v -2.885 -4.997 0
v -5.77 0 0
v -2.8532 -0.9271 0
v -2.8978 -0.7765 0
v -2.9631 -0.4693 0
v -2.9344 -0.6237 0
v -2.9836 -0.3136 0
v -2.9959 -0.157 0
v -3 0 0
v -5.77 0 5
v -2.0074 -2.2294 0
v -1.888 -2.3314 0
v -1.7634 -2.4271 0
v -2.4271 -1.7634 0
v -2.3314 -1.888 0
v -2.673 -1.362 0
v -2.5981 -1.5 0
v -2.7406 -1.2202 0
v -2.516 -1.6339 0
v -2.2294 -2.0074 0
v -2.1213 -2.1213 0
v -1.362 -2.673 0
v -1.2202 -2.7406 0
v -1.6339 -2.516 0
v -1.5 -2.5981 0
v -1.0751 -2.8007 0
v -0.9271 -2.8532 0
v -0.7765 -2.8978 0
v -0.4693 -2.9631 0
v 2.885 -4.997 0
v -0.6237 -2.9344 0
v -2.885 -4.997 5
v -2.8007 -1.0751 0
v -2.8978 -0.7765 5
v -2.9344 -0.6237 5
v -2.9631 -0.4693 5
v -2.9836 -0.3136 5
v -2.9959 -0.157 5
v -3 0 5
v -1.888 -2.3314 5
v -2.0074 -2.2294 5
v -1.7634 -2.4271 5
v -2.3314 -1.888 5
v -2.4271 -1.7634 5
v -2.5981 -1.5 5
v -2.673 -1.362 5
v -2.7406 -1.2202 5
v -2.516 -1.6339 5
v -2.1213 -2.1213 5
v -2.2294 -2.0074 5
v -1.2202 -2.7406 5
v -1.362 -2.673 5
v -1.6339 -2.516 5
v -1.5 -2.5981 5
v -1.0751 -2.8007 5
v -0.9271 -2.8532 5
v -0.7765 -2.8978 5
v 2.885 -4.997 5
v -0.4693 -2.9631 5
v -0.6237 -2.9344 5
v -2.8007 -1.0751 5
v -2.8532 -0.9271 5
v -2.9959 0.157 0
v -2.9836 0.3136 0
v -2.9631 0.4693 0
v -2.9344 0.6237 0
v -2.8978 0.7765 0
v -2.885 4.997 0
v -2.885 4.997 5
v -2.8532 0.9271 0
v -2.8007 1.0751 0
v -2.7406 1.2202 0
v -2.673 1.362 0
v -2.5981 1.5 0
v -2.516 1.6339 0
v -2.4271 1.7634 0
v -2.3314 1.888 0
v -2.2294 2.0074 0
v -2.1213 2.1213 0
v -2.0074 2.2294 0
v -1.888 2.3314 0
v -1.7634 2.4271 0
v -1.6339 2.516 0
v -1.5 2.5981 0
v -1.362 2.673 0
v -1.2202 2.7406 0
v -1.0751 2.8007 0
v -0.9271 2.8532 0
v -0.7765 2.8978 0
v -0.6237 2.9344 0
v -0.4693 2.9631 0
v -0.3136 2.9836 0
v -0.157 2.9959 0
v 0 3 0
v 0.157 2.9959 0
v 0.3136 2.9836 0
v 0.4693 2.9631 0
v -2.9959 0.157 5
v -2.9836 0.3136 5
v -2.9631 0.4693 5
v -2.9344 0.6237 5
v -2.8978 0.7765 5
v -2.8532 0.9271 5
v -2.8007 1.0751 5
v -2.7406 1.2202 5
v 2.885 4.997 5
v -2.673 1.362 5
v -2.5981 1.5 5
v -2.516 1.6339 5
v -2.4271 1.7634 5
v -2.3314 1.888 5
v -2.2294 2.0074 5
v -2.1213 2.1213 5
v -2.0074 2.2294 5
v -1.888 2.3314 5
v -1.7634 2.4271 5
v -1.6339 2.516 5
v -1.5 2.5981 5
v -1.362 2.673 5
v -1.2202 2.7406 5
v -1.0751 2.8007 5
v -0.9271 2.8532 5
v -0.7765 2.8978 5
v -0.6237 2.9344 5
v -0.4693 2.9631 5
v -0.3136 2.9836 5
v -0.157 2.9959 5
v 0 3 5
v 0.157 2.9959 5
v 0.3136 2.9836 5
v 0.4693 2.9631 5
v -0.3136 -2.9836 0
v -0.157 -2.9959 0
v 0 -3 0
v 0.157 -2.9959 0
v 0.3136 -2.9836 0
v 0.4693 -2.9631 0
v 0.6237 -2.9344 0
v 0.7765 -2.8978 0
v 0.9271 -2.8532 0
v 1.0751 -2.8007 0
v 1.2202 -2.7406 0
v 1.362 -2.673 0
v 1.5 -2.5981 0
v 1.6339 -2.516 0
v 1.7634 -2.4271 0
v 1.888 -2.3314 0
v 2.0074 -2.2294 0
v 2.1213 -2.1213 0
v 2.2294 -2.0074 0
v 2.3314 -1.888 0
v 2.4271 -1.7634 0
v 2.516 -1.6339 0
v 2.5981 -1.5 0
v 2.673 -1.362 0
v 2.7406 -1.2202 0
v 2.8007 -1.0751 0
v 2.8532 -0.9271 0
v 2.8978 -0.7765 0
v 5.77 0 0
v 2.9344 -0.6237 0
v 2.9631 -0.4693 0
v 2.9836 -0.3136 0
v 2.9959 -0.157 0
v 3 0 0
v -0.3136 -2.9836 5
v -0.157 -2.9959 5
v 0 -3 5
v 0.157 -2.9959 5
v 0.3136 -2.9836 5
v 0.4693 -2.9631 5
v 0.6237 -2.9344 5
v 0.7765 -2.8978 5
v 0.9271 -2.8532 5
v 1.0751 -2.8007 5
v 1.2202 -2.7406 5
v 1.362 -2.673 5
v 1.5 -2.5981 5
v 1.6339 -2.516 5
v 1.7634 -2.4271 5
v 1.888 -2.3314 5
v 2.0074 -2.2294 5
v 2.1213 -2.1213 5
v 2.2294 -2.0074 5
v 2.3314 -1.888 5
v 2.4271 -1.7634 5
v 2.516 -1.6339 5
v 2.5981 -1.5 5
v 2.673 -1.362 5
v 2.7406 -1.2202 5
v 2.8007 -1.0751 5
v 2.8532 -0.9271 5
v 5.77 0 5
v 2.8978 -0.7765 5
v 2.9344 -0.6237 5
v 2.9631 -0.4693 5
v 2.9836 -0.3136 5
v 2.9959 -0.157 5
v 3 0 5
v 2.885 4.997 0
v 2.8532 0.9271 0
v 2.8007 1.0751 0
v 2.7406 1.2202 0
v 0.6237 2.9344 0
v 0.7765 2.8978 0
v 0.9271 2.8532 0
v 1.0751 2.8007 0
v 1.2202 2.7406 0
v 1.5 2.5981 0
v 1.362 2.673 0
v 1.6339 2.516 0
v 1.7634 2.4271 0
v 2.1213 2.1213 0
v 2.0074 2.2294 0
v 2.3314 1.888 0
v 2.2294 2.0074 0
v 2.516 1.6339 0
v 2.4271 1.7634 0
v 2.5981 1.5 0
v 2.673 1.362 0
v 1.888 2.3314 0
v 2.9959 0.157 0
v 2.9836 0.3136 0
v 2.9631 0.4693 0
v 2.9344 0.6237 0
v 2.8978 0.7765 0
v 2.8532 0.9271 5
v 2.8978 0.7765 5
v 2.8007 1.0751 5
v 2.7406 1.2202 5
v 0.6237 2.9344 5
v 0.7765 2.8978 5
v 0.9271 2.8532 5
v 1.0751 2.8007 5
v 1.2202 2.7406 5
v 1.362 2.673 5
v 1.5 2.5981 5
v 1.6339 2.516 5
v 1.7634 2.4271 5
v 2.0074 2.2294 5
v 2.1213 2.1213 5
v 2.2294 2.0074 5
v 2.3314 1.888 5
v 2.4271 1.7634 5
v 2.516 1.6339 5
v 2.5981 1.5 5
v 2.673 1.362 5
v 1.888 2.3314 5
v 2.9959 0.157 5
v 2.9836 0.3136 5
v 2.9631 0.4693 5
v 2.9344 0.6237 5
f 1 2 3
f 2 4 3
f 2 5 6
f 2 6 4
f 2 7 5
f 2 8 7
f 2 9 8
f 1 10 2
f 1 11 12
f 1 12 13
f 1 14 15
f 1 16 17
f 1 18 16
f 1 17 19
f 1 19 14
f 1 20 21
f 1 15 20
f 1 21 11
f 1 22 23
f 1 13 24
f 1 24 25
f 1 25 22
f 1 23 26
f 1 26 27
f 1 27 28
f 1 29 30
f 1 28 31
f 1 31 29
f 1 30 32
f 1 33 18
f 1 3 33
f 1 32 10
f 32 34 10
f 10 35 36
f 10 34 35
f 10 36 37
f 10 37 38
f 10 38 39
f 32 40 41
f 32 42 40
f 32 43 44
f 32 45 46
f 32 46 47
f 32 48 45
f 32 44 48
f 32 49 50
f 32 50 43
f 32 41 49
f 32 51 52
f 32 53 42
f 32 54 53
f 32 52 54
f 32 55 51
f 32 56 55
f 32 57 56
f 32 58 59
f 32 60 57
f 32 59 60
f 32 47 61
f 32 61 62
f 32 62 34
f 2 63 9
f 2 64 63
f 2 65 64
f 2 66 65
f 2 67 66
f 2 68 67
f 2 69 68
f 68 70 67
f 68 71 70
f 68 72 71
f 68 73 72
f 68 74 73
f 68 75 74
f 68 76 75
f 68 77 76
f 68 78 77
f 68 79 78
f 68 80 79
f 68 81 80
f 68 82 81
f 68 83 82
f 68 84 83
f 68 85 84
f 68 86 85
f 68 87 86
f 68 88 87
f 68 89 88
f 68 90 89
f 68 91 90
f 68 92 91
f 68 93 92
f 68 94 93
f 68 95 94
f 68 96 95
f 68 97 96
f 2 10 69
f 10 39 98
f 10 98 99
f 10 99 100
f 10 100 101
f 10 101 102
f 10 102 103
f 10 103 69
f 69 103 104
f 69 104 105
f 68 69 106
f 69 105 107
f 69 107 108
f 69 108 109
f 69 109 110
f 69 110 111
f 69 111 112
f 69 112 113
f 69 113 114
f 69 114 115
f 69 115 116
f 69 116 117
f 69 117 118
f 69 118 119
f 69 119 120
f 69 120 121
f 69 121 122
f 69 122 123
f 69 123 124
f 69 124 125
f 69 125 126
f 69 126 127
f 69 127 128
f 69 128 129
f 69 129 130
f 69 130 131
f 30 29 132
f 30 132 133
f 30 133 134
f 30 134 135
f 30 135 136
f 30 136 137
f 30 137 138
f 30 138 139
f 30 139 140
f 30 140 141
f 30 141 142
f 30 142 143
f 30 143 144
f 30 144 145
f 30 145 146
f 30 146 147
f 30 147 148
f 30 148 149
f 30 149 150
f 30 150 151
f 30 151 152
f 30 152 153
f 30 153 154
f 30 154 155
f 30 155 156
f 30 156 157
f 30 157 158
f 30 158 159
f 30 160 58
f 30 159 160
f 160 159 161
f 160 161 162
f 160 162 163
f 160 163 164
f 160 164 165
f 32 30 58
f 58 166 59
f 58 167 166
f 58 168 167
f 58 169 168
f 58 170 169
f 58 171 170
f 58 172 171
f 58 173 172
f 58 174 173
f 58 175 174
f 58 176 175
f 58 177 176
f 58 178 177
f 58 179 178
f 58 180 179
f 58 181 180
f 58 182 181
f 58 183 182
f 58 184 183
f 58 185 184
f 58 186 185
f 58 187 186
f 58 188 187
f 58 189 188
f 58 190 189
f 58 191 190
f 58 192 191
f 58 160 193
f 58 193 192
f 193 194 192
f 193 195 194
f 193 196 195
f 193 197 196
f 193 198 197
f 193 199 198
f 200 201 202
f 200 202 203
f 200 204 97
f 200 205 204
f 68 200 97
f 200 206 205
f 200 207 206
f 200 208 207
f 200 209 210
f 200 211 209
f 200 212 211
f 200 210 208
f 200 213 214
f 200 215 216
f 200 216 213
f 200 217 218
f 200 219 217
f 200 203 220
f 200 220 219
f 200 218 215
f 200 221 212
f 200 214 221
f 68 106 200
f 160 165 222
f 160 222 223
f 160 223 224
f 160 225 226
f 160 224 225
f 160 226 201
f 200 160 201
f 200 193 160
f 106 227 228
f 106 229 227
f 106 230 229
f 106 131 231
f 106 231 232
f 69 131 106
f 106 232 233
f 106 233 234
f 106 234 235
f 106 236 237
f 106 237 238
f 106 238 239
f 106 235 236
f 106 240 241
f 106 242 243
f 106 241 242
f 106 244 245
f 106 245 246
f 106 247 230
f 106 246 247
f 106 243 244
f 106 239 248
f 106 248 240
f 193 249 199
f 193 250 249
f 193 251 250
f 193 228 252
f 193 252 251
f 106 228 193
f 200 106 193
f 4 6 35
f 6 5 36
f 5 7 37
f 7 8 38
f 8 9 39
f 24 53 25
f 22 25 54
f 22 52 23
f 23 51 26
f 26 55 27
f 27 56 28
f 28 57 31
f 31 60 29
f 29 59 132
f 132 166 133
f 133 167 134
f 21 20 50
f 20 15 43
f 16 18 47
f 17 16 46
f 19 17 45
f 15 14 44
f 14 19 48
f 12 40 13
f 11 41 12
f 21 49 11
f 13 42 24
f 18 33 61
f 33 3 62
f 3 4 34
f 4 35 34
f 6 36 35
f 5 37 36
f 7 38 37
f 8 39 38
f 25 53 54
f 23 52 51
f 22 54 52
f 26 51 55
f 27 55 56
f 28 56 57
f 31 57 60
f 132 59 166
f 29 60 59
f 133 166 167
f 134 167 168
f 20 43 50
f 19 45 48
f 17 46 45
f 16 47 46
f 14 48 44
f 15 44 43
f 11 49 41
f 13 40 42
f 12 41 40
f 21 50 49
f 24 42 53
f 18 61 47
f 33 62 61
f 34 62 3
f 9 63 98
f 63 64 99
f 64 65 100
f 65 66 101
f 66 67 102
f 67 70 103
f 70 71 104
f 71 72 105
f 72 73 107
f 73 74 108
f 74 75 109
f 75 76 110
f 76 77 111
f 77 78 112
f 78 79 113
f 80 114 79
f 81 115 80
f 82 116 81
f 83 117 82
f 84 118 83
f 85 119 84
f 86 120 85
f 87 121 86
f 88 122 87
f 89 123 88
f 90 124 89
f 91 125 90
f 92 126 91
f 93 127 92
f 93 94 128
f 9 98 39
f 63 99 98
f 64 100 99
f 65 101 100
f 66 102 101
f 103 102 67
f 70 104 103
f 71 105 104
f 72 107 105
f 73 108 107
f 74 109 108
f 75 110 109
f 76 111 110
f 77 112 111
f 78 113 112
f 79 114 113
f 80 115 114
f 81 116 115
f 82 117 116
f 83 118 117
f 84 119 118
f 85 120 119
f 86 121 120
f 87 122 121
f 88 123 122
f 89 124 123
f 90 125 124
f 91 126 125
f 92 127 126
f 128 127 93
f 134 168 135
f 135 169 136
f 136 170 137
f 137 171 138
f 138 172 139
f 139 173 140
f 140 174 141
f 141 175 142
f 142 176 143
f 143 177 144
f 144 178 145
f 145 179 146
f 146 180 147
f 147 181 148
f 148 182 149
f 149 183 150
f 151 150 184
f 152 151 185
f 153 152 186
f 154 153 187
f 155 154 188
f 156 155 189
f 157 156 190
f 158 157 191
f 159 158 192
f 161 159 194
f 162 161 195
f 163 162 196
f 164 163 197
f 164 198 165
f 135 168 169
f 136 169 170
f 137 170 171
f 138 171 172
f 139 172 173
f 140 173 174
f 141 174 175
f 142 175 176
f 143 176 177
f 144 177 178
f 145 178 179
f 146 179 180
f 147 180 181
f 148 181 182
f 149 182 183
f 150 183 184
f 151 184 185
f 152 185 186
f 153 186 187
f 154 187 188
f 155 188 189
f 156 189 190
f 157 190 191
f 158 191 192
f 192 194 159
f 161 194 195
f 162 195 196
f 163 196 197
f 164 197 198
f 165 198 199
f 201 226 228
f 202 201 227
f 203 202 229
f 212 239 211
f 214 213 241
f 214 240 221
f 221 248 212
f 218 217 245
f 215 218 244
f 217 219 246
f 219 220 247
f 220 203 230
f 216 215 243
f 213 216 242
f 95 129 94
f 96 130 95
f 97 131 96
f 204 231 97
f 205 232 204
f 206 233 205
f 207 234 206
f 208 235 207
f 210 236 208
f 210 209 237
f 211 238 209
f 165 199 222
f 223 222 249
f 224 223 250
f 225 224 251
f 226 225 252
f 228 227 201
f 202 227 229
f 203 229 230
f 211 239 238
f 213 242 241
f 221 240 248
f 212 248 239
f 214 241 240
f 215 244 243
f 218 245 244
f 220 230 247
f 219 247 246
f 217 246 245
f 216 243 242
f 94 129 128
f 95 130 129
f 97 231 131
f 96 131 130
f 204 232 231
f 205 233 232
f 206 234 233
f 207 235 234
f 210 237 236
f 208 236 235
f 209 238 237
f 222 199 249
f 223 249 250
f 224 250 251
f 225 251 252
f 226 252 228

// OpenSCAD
// file: C:/gh/oomlout_oobb_part_motor_gearbox_wave_drive_version_5/parts/oobb_part_motor_gearbox_wave_drive_version_5_12_to_1_reduction/compact_helpers.scad
// Reusable native geometry helpers.
function polar(r,a)=[r*cos(a),r*sin(a)];
function rotate_point(p,a)=[p[0]*cos(a)-p[1]*sin(a),p[0]*sin(a)+p[1]*cos(a)];
function profile_point(t)=let(
    s=sqrt(pow(pitch_radius,2)-pow(eccentricity*sin(cavity_count*t),2)),
    r=eccentricity*cos(cavity_count*t)+s,
    xi=atan2(eccentricity*cavity_count*sin(cavity_count*t),s),
    rr=roller_radius+profile_clearance)
    [r*cos(t)+rr*cos(t+xi),r*sin(t)+rr*sin(t+xi)];
function profile_points(upper=false)=[for(i=[0:cavity_count*profile_samples_per_cavity-1])
    rotate_point(profile_point(360*i/(cavity_count*profile_samples_per_cavity)),0)];
function roller_position(i,a,upper=false)=let(
    t=-a/roller_count+360*i/roller_count,
    rel=t-a-(upper?180:0),
    r=eccentricity*cos(rel)+sqrt(pow(pitch_radius,2)-pow(eccentricity*sin(rel),2))) polar(r,t);
module tube(ro,ri,h) { difference() { cylinder(r=ro,h=h); translate([0,0,-eps]) cylinder(r=ri,h=h+2*eps); } }
module screw_hole(size,h) { scale([1,1,h]) { if(size=="m2") oobb_hole_m2(); if(size=="m3") oobb_hole_m3(); if(size=="m6") oobb_hole_m6(); } }
module socket_recess(size,depth) {
    // OOBB socket head starts at the under-head plane and extends outward.
    scale([1,1,depth/(size=="m3"?3.2:2.2)]) {
        if(size=="m3") oobb_socket_m3(); else oobb_socket_m2();
    }
}
module at_mounts(points) { for(p=points) translate([p[0],p[1],0]) children(); }
module shaft_cut(h,fit=shaft_fit_clearance) {
    linear_extrude(h) intersection() {
        circle(r=input_shaft_diameter/2+fit);
        translate([-10,-10]) square([10+input_shaft_diameter/2-input_shaft_flat_depth+fit,20]);
    }
}
module rounded_rectangle_plate(size=[119,119,3],radius=1.5) {
    hull() for(x=[-1,1],y=[-1,1]) translate([x*(size[0]/2-radius),y*(size[1]/2-radius),0]) cylinder(r=radius,h=size[2]);
}
module grid_cuts(h) {
    // Actual OOBB grid centres: six units are centred on half-pitch offsets.
    for(i=[0:base_width-1],j=[0:base_height-1])
        let(x=(i-(base_width-1)/2)*oobb_grid_pitch,y=(j-(base_height-1)/2)*oobb_grid_pitch)
        if(sqrt(x*x+y*y)>housing_radius+3.5)
            translate([x,y,-eps]) screw_hole("m6",h+2*eps);
}
module wave_generator() {
    render(convexity=20) difference() {
        tube(wave_radius,12.6,wave_height);
        translate([0,0,wave_seat_z]) cylinder(r=13.5+bearing_seat_clearance,h=wave_height);
        translate([0,0,wave_height-wave_cap_depth]) cylinder(r=22.15,h=wave_cap_depth+eps);
        at_mounts(wave_mounts) {
            translate([0,0,-eps]) screw_hole("m3",wave_height+2*eps);
            translate([0,0,wave_nut_z]) scale([1,1,(wave_height-wave_cap_depth-wave_nut_z+eps)/2.7]) oobb_nut_m3();
        }
    }
}
module wave_cap() {
    render(convexity=20) difference() {
        tube(22,12.6,wave_cap_depth);
        at_mounts(wave_mounts) {
            translate([0,0,-eps]) screw_hole("m3",wave_cap_depth+2*eps);
            translate([0,0,wave_cap_depth-wave_head_recess]) socket_recess("m3",wave_head_recess+eps);
        }
    }
}
// file: C:/gh/oomlout_oobb_part_motor_gearbox_wave_drive_version_5/parts/oobb_part_motor_gearbox_wave_drive_version_5_12_to_1_reduction/oobb_hardware.scad
module oobb_rounded_rectangle_edges(size, radius, radius_top, radius_bottom) {
      rt=radius_top; rb=radius_bottom; depth=size[2]; n=16;
      lower=rb==0 ? [[radius,0]] :
        [for(i=[0:n]) let(a=-90+90*i/n) [radius-rb+rb*cos(a),rb+rb*sin(a)]];
      upper=rt==0 ? [[radius,depth]] :
        [for(i=[0:n]) let(a=90*i/n) [radius-rt+rt*cos(a),depth-rt+rt*sin(a)]];
      hull() for(x=[-size[0]/2+radius,size[0]/2-radius])
        for(y=[-size[1]/2+radius,size[1]/2-radius])
          translate([x,y,0]) rotate_extrude()
            polygon(concat([[0,0]],lower,upper,[[0,depth]]));
    }
// Generated from installed OOBB v5. All primitives use overhang=True.

module oobb_motor_plate_body() {


difference() {
	union() {
		translate(v = [0, 0, 0]) {
			rotate(a = [0, 0, 0]) {
				difference() {
					union() {
						oobb_rounded_rectangle_edges(radius = 1.5, radius_bottom = 1.5, radius_top = 1.5, size = [89.0, 89.0, 4.0]);
					}
					union();
				}
			}
		}
	}
	union();
}

}

module oobb_hole_m2() {


difference() {
	union() {
		cylinder(h = 1, r = 1.35);
	}
	union();
}

}

module oobb_hole_m3() {


difference() {
	union() {
		cylinder(h = 1, r = 1.8);
	}
	union();
}

}

module oobb_hole_m6() {


difference() {
	union() {
		cylinder(h = 1, r = 3.25);
	}
	union();
}

}

module oobb_nut_m2() {


difference() {
	union() {
		translate(v = [0, 0, 0]) {
			rotate(a = [0, 0, 0]) {
				difference() {
					union() {
						linear_extrude(height = 2.2) {
							polygon(points = [[2.4234, 0.0], [1.2117000000000002, 2.0987259635312085], [-1.2116999999999996, 2.0987259635312085], [-2.4234, 2.967809053053696e-16], [-1.211700000000001, -2.098725963531208], [1.2116999999999984, -2.0987259635312094]]);
						}
						translate(v = [-1.25, -2.75, -0.3]) {
							cube(size = [2.5, 5.5, 0.3]);
						}
						translate(v = [-1.25, -1.25, -0.6]) {
							cube(size = [2.5, 2.5, 0.3]);
						}
						translate(v = [-1.25, -2.75, 2.2]) {
							cube(size = [2.5, 5.5, 0.3]);
						}
						translate(v = [-1.25, -1.25, 2.5]) {
							cube(size = [2.5, 2.5, 0.3]);
						}
					}
					union();
				}
			}
		}
	}
	union();
}

}

module oobb_socket_m2() {


difference() {
	union() {
		translate(v = [0, 0, 0]) {
			rotate(a = [0, 0, 0]) {
				difference() {
					union() {
						cylinder(h = 2.2, r = 2.1);
						translate(v = [-1.25, -2.75, -0.3]) {
							cube(size = [2.5, 5.5, 0.3]);
						}
						translate(v = [-1.25, -1.25, -0.6]) {
							cube(size = [2.5, 2.5, 0.3]);
						}
					}
					union();
				}
			}
		}
	}
	union();
}

}

module oobb_nut_m3() {


difference() {
	union() {
		translate(v = [0, 0, 0]) {
			rotate(a = [0, 0, 0]) {
				difference() {
					union() {
						linear_extrude(height = 2.7) {
							polygon(points = [[3.4619999999999997, 0.0], [1.7310000000000003, 2.9981799479017264], [-1.7309999999999992, 2.9981799479017264], [-3.4619999999999997, 4.2397272186481365e-16], [-1.7310000000000014, -2.998179947901726], [1.7309999999999977, -2.9981799479017277]]);
						}
						translate(v = [-1.75, -3.25, -0.3]) {
							cube(size = [3.5, 6.5, 0.3]);
						}
						translate(v = [-1.75, -1.75, -0.6]) {
							cube(size = [3.5, 3.5, 0.3]);
						}
						translate(v = [-1.75, -3.25, 2.7]) {
							cube(size = [3.5, 6.5, 0.3]);
						}
						translate(v = [-1.75, -1.75, 3.0]) {
							cube(size = [3.5, 3.5, 0.3]);
						}
					}
					union();
				}
			}
		}
	}
	union();
}

}

module oobb_socket_m3() {


difference() {
	union() {
		translate(v = [0, 0, 0]) {
			rotate(a = [0, 0, 0]) {
				difference() {
					union() {
						cylinder(h = 3.2, r = 3.0);
						translate(v = [-1.75, -3.25, -0.3]) {
							cube(size = [3.5, 6.5, 0.3]);
						}
						translate(v = [-1.75, -1.75, -0.6]) {
							cube(size = [3.5, 3.5, 0.3]);
						}
					}
					union();
				}
			}
		}
	}
	union();
}

}

module oobb_nut_m6() {


difference() {
	union() {
		translate(v = [0, 0, 0]) {
			rotate(a = [0, 0, 0]) {
				difference() {
					union() {
						linear_extrude(height = 5.2) {
							polygon(points = [[5.914249999999999, 0.0], [2.957125, 5.1218907443321156], [-2.9571249999999982, 5.1218907443321156], [-5.914249999999999, 7.242867331857232e-16], [-2.9571250000000022, -5.121890744332115], [2.9571249999999956, -5.121890744332118]]);
						}
						translate(v = [-2.875, -5.0, -0.3]) {
							cube(size = [5.75, 10, 0.3]);
						}
						translate(v = [-2.875, -2.875, -0.6]) {
							cube(size = [5.75, 5.75, 0.3]);
						}
						translate(v = [-2.875, -5.0, 5.2]) {
							cube(size = [5.75, 10, 0.3]);
						}
						translate(v = [-2.875, -2.875, 5.5]) {
							cube(size = [5.75, 5.75, 0.3]);
						}
					}
					union();
				}
			}
		}
	}
	union();
}

}
// file: C:/gh/oomlout_oobb_part_motor_gearbox_wave_drive_version_5/parts/oobb_part_motor_gearbox_wave_drive_version_5_12_to_1_reduction/parameters.scad
// Generated by working_scad.py. Edit the Python recipe to persist changes.
style = "version_5";
reduction = 12;
bearing_output = "6810";
bearing_wave = "6704";
roller_diameter = 7.0;
roller_bore_diameter = 3.2;
roller_length = 12.0;
roller_material = "nylon";
roller_bank_count = 1;
motor_plate_depth = 4.0;
motor_body_depth = 40.0;
motor_shaft_length = 24.0;
motor_hole_pitch = 31.0;
motor_thread_depth = 6.0;
motor_pilot_diameter = 22.0;
motor_pilot_height = 2.0;
output_holder_wall = 7.0;
max_screw_length = 35.0;
eccentricity = 0.75;
wave_radius = 23.25;
profile_clearance = 0.15;
roller_slot_clearance = 0.3;
roller_end_clearance = 0.3;
cage_wall = 4.0;
cage_plate_depth = 3.0;
bearing_seat_clearance = 0.1;
journal_clearance = 0.05;
bearing_axial_clearance = 0.2;
output_plate_diameter = 65.0;
output_plate_depth = 6.0;
output_grid_pitch = 15.0;
output_face_clearance = 0.3;
output_socket_recess = 4.0;
output_screw_length = 16;
output_nut_depth = 5.2;
output_nut_height = 5.0;
motor_shaft_end_clearance = 0.5;
base_width = 6;
base_height = 6;
oobb_grid_pitch = 15.0;
oobb_size_allowance = 1.0;
base_edge_radius = 1.5;
housing_flange_corner_radius = 1.5;
housing_screw_pitch_radius = 35.5;
housing_screw_count = 6;
input_shaft_diameter = 5.0;
input_shaft_flat_depth = 0.5;
shaft_fit_clearance = 0.1;
cage_screw_count = 4;
profile_samples_per_cavity = 100;
circle_fragments = 120;
overhang = true;
run_scad = true;
run_solidcraft = false;
generate_stl = true;
generate_previews = true;
generate_renders = true;
validate_geometry = true;
package_outputs = true;
render_threads = 8;
variant = "default";
// main file
include <C:/gh/oomlout_oobb_part_motor_gearbox_wave_drive_version_5/parts/oobb_part_motor_gearbox_wave_drive_version_5_12_to_1_reduction/parameters.scad>
include <C:/gh/oomlout_oobb_part_motor_gearbox_wave_drive_version_5/parts/oobb_part_motor_gearbox_wave_drive_version_5_12_to_1_reduction/oobb_hardware.scad>
include <C:/gh/oomlout_oobb_part_motor_gearbox_wave_drive_version_5/parts/oobb_part_motor_gearbox_wave_drive_version_5_12_to_1_reduction/geometry.scad>
difference() { intersection() { 

difference() {
	union() {
		translate(v = [0, 0, 0]) {
			rotate(a = [0, 0, 0]) {
				difference() {
					union() {
						linear_extrude(height = 5.0) {
							polygon(points = [[5.77, 0.0], [2.8850000000000002, 4.996966579836211], [-2.8849999999999985, 4.996966579836211], [-5.77, 7.066212031080227e-16], [-2.8850000000000025, -4.99696657983621], [2.884999999999996, -4.996966579836213]]);
						}
					}
					union();
				}
			}
		}
	}
	union();
}
 translate([-8,-8,0]) cube([16,16,5.0]); } translate([0,0,-0.01]) cylinder(r=3,h=5.02); }
